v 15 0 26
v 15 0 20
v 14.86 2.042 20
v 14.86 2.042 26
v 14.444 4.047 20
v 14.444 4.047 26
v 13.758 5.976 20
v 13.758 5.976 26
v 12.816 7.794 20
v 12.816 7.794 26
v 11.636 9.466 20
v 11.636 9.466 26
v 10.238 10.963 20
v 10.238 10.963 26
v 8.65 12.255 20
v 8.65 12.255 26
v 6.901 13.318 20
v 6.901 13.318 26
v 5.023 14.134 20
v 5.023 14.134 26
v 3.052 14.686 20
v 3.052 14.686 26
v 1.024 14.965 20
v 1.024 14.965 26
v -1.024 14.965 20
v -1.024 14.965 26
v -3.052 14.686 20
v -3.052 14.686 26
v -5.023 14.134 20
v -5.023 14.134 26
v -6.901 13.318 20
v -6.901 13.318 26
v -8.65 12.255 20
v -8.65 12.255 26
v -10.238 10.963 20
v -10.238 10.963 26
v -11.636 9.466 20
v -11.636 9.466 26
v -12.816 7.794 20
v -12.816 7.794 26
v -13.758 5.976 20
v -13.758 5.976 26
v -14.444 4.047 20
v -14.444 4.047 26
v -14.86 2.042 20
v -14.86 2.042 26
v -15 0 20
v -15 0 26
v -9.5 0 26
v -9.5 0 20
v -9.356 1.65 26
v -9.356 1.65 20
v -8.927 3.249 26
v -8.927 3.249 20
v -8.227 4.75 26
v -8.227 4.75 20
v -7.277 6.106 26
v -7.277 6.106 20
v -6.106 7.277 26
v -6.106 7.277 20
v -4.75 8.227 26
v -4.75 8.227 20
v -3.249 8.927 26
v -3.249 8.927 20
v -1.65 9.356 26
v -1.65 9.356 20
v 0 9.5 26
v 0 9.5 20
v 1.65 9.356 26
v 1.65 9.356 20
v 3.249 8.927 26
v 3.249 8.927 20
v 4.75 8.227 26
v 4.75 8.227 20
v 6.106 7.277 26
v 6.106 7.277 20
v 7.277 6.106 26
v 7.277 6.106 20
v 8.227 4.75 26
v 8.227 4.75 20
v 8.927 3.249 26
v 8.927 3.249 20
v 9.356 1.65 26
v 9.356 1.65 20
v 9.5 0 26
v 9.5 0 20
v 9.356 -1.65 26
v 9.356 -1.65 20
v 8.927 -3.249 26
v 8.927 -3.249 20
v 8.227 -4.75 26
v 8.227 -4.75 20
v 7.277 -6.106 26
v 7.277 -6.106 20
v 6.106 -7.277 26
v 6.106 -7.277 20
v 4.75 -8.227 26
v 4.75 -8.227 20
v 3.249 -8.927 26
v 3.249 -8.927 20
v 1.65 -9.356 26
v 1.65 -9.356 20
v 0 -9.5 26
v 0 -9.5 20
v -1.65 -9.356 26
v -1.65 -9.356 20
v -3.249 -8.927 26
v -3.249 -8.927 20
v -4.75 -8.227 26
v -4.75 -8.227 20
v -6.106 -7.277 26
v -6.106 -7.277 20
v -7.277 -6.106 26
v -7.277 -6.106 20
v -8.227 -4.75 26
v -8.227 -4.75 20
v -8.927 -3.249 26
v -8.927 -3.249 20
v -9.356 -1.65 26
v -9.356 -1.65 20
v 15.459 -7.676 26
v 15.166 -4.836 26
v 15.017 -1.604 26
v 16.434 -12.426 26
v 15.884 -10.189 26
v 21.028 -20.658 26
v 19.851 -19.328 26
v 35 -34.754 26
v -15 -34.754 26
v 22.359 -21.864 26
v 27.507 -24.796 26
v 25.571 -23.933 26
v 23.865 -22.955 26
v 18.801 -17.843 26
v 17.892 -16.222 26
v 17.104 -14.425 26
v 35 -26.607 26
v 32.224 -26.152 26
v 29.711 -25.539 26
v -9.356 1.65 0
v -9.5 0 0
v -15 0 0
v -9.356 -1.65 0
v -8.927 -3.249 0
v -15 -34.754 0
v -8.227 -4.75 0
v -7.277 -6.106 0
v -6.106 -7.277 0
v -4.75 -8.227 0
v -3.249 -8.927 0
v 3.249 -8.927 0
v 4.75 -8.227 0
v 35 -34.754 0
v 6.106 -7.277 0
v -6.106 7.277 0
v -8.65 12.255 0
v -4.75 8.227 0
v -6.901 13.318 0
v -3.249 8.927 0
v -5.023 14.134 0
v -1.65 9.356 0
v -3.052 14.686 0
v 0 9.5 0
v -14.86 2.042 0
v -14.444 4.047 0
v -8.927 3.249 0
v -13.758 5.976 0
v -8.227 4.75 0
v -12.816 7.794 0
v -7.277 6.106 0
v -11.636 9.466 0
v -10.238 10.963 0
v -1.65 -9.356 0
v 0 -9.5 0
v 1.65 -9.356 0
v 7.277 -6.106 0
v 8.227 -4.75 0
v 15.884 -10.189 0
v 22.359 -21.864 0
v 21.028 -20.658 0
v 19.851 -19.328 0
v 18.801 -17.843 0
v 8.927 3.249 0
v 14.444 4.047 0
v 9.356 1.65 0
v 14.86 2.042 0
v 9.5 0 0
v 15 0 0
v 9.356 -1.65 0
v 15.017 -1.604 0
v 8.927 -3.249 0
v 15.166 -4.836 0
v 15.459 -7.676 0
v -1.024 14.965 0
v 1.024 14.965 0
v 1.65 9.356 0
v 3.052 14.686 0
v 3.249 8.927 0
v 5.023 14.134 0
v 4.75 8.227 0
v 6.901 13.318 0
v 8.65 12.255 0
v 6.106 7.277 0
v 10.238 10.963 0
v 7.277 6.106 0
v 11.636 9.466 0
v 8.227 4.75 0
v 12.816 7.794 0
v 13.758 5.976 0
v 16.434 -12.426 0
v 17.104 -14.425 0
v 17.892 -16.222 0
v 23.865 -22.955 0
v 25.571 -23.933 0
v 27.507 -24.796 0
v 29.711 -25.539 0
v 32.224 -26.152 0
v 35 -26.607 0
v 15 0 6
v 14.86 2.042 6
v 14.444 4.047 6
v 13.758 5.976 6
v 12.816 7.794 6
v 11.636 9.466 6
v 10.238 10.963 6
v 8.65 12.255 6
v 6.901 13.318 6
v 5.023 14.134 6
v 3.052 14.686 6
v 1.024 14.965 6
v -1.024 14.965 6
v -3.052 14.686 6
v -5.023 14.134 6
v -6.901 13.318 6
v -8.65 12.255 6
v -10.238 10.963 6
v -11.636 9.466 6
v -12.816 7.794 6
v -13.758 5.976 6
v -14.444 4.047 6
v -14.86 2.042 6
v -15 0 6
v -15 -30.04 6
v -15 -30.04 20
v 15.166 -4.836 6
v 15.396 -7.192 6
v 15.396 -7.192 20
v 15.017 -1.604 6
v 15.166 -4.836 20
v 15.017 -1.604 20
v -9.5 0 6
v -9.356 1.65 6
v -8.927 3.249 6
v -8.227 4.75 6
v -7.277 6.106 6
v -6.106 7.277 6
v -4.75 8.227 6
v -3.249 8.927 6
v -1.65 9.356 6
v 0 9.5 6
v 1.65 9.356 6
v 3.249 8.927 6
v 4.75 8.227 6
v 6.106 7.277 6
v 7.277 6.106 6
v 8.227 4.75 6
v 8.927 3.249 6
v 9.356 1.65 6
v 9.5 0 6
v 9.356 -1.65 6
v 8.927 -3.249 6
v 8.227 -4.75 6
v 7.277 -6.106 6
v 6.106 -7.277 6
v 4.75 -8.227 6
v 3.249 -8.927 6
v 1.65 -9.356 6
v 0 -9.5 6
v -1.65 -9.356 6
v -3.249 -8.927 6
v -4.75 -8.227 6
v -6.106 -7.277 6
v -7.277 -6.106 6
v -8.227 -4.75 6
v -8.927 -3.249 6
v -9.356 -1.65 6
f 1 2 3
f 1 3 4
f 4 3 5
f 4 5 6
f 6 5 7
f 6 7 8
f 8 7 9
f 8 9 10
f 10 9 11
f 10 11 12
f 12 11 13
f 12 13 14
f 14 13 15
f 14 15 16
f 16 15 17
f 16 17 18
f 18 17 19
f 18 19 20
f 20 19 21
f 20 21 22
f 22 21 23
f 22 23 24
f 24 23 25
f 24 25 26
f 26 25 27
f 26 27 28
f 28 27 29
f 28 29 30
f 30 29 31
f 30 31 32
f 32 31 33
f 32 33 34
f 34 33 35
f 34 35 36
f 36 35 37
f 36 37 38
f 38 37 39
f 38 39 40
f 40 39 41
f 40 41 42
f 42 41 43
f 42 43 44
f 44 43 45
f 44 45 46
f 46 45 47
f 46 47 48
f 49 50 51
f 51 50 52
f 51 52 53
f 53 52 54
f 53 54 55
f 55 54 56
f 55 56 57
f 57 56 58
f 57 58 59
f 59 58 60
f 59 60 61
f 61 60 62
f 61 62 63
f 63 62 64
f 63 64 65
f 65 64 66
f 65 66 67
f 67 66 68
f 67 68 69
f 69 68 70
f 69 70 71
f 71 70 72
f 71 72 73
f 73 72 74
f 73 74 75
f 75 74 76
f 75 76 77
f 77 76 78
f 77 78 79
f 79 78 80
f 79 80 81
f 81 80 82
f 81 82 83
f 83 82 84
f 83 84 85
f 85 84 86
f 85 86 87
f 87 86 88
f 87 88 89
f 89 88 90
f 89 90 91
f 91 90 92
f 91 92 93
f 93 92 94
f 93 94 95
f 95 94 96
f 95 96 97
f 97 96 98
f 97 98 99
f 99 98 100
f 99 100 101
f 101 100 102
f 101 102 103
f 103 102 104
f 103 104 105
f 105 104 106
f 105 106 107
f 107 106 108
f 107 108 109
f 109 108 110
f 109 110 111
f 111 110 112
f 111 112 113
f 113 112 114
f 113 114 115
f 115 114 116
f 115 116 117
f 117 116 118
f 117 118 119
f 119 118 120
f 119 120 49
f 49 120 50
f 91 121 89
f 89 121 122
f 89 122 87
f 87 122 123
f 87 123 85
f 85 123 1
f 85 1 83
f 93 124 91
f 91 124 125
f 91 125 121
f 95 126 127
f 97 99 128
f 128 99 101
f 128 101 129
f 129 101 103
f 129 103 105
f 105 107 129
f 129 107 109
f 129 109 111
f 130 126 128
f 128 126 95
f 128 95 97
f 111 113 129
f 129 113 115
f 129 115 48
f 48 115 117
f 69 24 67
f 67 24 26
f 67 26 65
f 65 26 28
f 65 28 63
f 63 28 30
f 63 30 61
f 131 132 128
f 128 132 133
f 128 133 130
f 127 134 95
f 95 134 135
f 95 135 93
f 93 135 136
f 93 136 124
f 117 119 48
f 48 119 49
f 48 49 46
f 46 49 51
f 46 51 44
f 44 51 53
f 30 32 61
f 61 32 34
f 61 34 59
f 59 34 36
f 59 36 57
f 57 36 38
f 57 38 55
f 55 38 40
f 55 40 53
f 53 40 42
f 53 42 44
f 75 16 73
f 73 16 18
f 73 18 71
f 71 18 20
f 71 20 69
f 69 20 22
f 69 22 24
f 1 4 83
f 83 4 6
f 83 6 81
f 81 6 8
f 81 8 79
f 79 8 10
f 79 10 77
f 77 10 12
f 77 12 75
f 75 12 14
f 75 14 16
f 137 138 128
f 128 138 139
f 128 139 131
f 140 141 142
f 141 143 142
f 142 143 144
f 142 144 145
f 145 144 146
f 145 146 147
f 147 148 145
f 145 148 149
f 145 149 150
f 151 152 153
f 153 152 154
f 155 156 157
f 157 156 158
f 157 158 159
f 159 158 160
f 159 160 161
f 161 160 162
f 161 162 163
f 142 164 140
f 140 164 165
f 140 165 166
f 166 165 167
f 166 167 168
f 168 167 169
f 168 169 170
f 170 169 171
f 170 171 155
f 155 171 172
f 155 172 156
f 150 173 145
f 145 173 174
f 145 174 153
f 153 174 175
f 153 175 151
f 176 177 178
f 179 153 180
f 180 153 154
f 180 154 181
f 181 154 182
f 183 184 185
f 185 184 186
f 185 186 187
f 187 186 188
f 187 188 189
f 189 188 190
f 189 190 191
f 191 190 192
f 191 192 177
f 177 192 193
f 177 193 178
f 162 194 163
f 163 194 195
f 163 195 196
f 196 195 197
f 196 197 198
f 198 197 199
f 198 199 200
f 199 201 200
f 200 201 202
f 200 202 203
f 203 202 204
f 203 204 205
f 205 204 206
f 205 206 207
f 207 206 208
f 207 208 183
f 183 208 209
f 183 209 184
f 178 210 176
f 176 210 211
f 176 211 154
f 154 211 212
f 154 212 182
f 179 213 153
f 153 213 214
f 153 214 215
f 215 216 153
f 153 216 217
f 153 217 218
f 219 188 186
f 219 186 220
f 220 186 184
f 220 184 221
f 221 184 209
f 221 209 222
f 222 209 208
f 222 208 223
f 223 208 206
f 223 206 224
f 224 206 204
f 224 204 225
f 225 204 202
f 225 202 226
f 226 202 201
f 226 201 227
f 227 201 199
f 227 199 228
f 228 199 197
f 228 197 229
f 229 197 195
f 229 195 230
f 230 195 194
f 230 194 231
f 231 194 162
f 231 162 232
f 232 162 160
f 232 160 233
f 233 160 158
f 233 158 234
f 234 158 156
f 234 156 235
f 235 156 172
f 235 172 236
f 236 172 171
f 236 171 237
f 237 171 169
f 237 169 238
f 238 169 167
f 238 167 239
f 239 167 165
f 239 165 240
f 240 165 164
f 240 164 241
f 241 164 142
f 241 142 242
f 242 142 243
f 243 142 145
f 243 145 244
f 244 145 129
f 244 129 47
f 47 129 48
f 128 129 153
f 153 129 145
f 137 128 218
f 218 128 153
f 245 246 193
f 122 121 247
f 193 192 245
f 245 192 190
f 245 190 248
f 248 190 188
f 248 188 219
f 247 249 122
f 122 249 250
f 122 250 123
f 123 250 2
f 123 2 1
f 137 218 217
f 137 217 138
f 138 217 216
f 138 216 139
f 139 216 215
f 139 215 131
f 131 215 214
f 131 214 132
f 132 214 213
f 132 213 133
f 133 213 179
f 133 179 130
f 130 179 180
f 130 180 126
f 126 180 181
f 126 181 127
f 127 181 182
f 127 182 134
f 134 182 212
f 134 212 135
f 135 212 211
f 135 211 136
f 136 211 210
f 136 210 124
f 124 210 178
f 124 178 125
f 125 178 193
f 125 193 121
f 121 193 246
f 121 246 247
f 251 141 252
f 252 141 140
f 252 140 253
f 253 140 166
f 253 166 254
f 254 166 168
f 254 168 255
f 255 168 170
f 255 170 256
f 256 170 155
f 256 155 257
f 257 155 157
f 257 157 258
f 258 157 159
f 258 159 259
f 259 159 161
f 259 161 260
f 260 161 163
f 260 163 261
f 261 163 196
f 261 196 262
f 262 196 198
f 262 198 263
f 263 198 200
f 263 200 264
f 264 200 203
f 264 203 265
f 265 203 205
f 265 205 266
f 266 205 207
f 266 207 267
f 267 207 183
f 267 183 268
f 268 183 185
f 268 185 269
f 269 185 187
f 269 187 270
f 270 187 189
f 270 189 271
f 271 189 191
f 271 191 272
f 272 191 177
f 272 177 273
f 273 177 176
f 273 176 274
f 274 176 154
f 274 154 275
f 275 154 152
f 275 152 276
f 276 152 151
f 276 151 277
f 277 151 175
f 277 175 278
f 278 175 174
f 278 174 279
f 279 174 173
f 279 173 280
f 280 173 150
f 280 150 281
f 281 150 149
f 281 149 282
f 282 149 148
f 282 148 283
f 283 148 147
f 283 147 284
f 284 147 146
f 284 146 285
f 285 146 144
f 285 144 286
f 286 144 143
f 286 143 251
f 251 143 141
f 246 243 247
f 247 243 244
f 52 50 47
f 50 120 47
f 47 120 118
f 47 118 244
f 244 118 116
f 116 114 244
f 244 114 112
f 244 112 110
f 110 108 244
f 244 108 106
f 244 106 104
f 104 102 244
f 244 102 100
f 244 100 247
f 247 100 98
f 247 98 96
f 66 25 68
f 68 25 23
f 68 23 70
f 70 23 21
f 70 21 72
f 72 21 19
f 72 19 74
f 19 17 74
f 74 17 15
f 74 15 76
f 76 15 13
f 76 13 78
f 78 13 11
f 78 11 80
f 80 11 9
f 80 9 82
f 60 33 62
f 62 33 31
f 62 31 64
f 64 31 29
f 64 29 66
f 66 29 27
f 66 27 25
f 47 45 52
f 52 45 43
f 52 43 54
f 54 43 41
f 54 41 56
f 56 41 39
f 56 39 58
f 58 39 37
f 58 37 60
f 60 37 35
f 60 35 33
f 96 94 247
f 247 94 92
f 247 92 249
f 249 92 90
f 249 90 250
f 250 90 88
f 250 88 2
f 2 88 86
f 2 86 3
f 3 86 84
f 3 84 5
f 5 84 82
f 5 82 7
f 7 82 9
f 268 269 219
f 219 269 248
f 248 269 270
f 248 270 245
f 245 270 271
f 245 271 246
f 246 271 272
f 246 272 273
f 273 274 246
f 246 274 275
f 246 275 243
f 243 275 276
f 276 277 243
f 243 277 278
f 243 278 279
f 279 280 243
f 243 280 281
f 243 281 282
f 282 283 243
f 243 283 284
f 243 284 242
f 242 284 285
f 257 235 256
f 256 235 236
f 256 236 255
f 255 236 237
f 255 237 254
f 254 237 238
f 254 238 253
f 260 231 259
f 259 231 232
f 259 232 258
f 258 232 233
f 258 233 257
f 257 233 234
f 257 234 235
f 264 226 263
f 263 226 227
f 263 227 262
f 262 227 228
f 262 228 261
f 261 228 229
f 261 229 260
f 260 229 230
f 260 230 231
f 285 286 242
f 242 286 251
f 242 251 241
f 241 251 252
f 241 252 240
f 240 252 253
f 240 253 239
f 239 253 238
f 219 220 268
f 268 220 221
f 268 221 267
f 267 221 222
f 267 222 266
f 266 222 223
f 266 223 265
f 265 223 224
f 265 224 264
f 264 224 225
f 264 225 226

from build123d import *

# Parameters (mm, degrees)
SKETCH1_R           = 9.5
BOSS_EXTRUDE1_DEPTH = 26
SKETCH5_W           = 14
SKETCH5_H           = 30
CUT_EXTRUDE2_DEPTH  = 57


with BuildPart() as part:
    # Sketch1 → Boss-Extrude1 (new body)
    with BuildSketch(Plane.XY):
        with BuildLine():
            Line((-15, 0), (-15, -34.753782032))
            Line((-15, -34.753782032), (35, -34.753782032))
            Line((35, -34.753782032), (35, -26.607408272))
            add(Edge.make_bspline(
                [(35, -26.607408272), (19.62178197, -24.621800081), (15, -15.829616288), (15, 0)],
                knots=[0, 0, 0, 0, 1, 1, 1, 1], degree=3))
            ThreePointArc((15, 0), (0, 15), (-15, 0))
        make_face()
        with Locations(Location((0, 0, 0), (0, 0, 180))):
            Circle(SKETCH1_R, mode=Mode.SUBTRACT)
    extrude(amount=BOSS_EXTRUDE1_DEPTH)

    # Sketch5 → Cut-Extrude2 (cut)
    with BuildSketch(Plane(origin=(17.578199992, 13.213011814, 0), x_dir=(0, 0, -1), z_dir=(0.7993586418199494, 0.6008541934178091, -6.982962677686267e-15))):
        with Locations((-13, 0)):
            Rectangle(SKETCH5_W, SKETCH5_H)
    extrude(amount=-CUT_EXTRUDE2_DEPTH, mode=Mode.SUBTRACT)


solid = part.part
